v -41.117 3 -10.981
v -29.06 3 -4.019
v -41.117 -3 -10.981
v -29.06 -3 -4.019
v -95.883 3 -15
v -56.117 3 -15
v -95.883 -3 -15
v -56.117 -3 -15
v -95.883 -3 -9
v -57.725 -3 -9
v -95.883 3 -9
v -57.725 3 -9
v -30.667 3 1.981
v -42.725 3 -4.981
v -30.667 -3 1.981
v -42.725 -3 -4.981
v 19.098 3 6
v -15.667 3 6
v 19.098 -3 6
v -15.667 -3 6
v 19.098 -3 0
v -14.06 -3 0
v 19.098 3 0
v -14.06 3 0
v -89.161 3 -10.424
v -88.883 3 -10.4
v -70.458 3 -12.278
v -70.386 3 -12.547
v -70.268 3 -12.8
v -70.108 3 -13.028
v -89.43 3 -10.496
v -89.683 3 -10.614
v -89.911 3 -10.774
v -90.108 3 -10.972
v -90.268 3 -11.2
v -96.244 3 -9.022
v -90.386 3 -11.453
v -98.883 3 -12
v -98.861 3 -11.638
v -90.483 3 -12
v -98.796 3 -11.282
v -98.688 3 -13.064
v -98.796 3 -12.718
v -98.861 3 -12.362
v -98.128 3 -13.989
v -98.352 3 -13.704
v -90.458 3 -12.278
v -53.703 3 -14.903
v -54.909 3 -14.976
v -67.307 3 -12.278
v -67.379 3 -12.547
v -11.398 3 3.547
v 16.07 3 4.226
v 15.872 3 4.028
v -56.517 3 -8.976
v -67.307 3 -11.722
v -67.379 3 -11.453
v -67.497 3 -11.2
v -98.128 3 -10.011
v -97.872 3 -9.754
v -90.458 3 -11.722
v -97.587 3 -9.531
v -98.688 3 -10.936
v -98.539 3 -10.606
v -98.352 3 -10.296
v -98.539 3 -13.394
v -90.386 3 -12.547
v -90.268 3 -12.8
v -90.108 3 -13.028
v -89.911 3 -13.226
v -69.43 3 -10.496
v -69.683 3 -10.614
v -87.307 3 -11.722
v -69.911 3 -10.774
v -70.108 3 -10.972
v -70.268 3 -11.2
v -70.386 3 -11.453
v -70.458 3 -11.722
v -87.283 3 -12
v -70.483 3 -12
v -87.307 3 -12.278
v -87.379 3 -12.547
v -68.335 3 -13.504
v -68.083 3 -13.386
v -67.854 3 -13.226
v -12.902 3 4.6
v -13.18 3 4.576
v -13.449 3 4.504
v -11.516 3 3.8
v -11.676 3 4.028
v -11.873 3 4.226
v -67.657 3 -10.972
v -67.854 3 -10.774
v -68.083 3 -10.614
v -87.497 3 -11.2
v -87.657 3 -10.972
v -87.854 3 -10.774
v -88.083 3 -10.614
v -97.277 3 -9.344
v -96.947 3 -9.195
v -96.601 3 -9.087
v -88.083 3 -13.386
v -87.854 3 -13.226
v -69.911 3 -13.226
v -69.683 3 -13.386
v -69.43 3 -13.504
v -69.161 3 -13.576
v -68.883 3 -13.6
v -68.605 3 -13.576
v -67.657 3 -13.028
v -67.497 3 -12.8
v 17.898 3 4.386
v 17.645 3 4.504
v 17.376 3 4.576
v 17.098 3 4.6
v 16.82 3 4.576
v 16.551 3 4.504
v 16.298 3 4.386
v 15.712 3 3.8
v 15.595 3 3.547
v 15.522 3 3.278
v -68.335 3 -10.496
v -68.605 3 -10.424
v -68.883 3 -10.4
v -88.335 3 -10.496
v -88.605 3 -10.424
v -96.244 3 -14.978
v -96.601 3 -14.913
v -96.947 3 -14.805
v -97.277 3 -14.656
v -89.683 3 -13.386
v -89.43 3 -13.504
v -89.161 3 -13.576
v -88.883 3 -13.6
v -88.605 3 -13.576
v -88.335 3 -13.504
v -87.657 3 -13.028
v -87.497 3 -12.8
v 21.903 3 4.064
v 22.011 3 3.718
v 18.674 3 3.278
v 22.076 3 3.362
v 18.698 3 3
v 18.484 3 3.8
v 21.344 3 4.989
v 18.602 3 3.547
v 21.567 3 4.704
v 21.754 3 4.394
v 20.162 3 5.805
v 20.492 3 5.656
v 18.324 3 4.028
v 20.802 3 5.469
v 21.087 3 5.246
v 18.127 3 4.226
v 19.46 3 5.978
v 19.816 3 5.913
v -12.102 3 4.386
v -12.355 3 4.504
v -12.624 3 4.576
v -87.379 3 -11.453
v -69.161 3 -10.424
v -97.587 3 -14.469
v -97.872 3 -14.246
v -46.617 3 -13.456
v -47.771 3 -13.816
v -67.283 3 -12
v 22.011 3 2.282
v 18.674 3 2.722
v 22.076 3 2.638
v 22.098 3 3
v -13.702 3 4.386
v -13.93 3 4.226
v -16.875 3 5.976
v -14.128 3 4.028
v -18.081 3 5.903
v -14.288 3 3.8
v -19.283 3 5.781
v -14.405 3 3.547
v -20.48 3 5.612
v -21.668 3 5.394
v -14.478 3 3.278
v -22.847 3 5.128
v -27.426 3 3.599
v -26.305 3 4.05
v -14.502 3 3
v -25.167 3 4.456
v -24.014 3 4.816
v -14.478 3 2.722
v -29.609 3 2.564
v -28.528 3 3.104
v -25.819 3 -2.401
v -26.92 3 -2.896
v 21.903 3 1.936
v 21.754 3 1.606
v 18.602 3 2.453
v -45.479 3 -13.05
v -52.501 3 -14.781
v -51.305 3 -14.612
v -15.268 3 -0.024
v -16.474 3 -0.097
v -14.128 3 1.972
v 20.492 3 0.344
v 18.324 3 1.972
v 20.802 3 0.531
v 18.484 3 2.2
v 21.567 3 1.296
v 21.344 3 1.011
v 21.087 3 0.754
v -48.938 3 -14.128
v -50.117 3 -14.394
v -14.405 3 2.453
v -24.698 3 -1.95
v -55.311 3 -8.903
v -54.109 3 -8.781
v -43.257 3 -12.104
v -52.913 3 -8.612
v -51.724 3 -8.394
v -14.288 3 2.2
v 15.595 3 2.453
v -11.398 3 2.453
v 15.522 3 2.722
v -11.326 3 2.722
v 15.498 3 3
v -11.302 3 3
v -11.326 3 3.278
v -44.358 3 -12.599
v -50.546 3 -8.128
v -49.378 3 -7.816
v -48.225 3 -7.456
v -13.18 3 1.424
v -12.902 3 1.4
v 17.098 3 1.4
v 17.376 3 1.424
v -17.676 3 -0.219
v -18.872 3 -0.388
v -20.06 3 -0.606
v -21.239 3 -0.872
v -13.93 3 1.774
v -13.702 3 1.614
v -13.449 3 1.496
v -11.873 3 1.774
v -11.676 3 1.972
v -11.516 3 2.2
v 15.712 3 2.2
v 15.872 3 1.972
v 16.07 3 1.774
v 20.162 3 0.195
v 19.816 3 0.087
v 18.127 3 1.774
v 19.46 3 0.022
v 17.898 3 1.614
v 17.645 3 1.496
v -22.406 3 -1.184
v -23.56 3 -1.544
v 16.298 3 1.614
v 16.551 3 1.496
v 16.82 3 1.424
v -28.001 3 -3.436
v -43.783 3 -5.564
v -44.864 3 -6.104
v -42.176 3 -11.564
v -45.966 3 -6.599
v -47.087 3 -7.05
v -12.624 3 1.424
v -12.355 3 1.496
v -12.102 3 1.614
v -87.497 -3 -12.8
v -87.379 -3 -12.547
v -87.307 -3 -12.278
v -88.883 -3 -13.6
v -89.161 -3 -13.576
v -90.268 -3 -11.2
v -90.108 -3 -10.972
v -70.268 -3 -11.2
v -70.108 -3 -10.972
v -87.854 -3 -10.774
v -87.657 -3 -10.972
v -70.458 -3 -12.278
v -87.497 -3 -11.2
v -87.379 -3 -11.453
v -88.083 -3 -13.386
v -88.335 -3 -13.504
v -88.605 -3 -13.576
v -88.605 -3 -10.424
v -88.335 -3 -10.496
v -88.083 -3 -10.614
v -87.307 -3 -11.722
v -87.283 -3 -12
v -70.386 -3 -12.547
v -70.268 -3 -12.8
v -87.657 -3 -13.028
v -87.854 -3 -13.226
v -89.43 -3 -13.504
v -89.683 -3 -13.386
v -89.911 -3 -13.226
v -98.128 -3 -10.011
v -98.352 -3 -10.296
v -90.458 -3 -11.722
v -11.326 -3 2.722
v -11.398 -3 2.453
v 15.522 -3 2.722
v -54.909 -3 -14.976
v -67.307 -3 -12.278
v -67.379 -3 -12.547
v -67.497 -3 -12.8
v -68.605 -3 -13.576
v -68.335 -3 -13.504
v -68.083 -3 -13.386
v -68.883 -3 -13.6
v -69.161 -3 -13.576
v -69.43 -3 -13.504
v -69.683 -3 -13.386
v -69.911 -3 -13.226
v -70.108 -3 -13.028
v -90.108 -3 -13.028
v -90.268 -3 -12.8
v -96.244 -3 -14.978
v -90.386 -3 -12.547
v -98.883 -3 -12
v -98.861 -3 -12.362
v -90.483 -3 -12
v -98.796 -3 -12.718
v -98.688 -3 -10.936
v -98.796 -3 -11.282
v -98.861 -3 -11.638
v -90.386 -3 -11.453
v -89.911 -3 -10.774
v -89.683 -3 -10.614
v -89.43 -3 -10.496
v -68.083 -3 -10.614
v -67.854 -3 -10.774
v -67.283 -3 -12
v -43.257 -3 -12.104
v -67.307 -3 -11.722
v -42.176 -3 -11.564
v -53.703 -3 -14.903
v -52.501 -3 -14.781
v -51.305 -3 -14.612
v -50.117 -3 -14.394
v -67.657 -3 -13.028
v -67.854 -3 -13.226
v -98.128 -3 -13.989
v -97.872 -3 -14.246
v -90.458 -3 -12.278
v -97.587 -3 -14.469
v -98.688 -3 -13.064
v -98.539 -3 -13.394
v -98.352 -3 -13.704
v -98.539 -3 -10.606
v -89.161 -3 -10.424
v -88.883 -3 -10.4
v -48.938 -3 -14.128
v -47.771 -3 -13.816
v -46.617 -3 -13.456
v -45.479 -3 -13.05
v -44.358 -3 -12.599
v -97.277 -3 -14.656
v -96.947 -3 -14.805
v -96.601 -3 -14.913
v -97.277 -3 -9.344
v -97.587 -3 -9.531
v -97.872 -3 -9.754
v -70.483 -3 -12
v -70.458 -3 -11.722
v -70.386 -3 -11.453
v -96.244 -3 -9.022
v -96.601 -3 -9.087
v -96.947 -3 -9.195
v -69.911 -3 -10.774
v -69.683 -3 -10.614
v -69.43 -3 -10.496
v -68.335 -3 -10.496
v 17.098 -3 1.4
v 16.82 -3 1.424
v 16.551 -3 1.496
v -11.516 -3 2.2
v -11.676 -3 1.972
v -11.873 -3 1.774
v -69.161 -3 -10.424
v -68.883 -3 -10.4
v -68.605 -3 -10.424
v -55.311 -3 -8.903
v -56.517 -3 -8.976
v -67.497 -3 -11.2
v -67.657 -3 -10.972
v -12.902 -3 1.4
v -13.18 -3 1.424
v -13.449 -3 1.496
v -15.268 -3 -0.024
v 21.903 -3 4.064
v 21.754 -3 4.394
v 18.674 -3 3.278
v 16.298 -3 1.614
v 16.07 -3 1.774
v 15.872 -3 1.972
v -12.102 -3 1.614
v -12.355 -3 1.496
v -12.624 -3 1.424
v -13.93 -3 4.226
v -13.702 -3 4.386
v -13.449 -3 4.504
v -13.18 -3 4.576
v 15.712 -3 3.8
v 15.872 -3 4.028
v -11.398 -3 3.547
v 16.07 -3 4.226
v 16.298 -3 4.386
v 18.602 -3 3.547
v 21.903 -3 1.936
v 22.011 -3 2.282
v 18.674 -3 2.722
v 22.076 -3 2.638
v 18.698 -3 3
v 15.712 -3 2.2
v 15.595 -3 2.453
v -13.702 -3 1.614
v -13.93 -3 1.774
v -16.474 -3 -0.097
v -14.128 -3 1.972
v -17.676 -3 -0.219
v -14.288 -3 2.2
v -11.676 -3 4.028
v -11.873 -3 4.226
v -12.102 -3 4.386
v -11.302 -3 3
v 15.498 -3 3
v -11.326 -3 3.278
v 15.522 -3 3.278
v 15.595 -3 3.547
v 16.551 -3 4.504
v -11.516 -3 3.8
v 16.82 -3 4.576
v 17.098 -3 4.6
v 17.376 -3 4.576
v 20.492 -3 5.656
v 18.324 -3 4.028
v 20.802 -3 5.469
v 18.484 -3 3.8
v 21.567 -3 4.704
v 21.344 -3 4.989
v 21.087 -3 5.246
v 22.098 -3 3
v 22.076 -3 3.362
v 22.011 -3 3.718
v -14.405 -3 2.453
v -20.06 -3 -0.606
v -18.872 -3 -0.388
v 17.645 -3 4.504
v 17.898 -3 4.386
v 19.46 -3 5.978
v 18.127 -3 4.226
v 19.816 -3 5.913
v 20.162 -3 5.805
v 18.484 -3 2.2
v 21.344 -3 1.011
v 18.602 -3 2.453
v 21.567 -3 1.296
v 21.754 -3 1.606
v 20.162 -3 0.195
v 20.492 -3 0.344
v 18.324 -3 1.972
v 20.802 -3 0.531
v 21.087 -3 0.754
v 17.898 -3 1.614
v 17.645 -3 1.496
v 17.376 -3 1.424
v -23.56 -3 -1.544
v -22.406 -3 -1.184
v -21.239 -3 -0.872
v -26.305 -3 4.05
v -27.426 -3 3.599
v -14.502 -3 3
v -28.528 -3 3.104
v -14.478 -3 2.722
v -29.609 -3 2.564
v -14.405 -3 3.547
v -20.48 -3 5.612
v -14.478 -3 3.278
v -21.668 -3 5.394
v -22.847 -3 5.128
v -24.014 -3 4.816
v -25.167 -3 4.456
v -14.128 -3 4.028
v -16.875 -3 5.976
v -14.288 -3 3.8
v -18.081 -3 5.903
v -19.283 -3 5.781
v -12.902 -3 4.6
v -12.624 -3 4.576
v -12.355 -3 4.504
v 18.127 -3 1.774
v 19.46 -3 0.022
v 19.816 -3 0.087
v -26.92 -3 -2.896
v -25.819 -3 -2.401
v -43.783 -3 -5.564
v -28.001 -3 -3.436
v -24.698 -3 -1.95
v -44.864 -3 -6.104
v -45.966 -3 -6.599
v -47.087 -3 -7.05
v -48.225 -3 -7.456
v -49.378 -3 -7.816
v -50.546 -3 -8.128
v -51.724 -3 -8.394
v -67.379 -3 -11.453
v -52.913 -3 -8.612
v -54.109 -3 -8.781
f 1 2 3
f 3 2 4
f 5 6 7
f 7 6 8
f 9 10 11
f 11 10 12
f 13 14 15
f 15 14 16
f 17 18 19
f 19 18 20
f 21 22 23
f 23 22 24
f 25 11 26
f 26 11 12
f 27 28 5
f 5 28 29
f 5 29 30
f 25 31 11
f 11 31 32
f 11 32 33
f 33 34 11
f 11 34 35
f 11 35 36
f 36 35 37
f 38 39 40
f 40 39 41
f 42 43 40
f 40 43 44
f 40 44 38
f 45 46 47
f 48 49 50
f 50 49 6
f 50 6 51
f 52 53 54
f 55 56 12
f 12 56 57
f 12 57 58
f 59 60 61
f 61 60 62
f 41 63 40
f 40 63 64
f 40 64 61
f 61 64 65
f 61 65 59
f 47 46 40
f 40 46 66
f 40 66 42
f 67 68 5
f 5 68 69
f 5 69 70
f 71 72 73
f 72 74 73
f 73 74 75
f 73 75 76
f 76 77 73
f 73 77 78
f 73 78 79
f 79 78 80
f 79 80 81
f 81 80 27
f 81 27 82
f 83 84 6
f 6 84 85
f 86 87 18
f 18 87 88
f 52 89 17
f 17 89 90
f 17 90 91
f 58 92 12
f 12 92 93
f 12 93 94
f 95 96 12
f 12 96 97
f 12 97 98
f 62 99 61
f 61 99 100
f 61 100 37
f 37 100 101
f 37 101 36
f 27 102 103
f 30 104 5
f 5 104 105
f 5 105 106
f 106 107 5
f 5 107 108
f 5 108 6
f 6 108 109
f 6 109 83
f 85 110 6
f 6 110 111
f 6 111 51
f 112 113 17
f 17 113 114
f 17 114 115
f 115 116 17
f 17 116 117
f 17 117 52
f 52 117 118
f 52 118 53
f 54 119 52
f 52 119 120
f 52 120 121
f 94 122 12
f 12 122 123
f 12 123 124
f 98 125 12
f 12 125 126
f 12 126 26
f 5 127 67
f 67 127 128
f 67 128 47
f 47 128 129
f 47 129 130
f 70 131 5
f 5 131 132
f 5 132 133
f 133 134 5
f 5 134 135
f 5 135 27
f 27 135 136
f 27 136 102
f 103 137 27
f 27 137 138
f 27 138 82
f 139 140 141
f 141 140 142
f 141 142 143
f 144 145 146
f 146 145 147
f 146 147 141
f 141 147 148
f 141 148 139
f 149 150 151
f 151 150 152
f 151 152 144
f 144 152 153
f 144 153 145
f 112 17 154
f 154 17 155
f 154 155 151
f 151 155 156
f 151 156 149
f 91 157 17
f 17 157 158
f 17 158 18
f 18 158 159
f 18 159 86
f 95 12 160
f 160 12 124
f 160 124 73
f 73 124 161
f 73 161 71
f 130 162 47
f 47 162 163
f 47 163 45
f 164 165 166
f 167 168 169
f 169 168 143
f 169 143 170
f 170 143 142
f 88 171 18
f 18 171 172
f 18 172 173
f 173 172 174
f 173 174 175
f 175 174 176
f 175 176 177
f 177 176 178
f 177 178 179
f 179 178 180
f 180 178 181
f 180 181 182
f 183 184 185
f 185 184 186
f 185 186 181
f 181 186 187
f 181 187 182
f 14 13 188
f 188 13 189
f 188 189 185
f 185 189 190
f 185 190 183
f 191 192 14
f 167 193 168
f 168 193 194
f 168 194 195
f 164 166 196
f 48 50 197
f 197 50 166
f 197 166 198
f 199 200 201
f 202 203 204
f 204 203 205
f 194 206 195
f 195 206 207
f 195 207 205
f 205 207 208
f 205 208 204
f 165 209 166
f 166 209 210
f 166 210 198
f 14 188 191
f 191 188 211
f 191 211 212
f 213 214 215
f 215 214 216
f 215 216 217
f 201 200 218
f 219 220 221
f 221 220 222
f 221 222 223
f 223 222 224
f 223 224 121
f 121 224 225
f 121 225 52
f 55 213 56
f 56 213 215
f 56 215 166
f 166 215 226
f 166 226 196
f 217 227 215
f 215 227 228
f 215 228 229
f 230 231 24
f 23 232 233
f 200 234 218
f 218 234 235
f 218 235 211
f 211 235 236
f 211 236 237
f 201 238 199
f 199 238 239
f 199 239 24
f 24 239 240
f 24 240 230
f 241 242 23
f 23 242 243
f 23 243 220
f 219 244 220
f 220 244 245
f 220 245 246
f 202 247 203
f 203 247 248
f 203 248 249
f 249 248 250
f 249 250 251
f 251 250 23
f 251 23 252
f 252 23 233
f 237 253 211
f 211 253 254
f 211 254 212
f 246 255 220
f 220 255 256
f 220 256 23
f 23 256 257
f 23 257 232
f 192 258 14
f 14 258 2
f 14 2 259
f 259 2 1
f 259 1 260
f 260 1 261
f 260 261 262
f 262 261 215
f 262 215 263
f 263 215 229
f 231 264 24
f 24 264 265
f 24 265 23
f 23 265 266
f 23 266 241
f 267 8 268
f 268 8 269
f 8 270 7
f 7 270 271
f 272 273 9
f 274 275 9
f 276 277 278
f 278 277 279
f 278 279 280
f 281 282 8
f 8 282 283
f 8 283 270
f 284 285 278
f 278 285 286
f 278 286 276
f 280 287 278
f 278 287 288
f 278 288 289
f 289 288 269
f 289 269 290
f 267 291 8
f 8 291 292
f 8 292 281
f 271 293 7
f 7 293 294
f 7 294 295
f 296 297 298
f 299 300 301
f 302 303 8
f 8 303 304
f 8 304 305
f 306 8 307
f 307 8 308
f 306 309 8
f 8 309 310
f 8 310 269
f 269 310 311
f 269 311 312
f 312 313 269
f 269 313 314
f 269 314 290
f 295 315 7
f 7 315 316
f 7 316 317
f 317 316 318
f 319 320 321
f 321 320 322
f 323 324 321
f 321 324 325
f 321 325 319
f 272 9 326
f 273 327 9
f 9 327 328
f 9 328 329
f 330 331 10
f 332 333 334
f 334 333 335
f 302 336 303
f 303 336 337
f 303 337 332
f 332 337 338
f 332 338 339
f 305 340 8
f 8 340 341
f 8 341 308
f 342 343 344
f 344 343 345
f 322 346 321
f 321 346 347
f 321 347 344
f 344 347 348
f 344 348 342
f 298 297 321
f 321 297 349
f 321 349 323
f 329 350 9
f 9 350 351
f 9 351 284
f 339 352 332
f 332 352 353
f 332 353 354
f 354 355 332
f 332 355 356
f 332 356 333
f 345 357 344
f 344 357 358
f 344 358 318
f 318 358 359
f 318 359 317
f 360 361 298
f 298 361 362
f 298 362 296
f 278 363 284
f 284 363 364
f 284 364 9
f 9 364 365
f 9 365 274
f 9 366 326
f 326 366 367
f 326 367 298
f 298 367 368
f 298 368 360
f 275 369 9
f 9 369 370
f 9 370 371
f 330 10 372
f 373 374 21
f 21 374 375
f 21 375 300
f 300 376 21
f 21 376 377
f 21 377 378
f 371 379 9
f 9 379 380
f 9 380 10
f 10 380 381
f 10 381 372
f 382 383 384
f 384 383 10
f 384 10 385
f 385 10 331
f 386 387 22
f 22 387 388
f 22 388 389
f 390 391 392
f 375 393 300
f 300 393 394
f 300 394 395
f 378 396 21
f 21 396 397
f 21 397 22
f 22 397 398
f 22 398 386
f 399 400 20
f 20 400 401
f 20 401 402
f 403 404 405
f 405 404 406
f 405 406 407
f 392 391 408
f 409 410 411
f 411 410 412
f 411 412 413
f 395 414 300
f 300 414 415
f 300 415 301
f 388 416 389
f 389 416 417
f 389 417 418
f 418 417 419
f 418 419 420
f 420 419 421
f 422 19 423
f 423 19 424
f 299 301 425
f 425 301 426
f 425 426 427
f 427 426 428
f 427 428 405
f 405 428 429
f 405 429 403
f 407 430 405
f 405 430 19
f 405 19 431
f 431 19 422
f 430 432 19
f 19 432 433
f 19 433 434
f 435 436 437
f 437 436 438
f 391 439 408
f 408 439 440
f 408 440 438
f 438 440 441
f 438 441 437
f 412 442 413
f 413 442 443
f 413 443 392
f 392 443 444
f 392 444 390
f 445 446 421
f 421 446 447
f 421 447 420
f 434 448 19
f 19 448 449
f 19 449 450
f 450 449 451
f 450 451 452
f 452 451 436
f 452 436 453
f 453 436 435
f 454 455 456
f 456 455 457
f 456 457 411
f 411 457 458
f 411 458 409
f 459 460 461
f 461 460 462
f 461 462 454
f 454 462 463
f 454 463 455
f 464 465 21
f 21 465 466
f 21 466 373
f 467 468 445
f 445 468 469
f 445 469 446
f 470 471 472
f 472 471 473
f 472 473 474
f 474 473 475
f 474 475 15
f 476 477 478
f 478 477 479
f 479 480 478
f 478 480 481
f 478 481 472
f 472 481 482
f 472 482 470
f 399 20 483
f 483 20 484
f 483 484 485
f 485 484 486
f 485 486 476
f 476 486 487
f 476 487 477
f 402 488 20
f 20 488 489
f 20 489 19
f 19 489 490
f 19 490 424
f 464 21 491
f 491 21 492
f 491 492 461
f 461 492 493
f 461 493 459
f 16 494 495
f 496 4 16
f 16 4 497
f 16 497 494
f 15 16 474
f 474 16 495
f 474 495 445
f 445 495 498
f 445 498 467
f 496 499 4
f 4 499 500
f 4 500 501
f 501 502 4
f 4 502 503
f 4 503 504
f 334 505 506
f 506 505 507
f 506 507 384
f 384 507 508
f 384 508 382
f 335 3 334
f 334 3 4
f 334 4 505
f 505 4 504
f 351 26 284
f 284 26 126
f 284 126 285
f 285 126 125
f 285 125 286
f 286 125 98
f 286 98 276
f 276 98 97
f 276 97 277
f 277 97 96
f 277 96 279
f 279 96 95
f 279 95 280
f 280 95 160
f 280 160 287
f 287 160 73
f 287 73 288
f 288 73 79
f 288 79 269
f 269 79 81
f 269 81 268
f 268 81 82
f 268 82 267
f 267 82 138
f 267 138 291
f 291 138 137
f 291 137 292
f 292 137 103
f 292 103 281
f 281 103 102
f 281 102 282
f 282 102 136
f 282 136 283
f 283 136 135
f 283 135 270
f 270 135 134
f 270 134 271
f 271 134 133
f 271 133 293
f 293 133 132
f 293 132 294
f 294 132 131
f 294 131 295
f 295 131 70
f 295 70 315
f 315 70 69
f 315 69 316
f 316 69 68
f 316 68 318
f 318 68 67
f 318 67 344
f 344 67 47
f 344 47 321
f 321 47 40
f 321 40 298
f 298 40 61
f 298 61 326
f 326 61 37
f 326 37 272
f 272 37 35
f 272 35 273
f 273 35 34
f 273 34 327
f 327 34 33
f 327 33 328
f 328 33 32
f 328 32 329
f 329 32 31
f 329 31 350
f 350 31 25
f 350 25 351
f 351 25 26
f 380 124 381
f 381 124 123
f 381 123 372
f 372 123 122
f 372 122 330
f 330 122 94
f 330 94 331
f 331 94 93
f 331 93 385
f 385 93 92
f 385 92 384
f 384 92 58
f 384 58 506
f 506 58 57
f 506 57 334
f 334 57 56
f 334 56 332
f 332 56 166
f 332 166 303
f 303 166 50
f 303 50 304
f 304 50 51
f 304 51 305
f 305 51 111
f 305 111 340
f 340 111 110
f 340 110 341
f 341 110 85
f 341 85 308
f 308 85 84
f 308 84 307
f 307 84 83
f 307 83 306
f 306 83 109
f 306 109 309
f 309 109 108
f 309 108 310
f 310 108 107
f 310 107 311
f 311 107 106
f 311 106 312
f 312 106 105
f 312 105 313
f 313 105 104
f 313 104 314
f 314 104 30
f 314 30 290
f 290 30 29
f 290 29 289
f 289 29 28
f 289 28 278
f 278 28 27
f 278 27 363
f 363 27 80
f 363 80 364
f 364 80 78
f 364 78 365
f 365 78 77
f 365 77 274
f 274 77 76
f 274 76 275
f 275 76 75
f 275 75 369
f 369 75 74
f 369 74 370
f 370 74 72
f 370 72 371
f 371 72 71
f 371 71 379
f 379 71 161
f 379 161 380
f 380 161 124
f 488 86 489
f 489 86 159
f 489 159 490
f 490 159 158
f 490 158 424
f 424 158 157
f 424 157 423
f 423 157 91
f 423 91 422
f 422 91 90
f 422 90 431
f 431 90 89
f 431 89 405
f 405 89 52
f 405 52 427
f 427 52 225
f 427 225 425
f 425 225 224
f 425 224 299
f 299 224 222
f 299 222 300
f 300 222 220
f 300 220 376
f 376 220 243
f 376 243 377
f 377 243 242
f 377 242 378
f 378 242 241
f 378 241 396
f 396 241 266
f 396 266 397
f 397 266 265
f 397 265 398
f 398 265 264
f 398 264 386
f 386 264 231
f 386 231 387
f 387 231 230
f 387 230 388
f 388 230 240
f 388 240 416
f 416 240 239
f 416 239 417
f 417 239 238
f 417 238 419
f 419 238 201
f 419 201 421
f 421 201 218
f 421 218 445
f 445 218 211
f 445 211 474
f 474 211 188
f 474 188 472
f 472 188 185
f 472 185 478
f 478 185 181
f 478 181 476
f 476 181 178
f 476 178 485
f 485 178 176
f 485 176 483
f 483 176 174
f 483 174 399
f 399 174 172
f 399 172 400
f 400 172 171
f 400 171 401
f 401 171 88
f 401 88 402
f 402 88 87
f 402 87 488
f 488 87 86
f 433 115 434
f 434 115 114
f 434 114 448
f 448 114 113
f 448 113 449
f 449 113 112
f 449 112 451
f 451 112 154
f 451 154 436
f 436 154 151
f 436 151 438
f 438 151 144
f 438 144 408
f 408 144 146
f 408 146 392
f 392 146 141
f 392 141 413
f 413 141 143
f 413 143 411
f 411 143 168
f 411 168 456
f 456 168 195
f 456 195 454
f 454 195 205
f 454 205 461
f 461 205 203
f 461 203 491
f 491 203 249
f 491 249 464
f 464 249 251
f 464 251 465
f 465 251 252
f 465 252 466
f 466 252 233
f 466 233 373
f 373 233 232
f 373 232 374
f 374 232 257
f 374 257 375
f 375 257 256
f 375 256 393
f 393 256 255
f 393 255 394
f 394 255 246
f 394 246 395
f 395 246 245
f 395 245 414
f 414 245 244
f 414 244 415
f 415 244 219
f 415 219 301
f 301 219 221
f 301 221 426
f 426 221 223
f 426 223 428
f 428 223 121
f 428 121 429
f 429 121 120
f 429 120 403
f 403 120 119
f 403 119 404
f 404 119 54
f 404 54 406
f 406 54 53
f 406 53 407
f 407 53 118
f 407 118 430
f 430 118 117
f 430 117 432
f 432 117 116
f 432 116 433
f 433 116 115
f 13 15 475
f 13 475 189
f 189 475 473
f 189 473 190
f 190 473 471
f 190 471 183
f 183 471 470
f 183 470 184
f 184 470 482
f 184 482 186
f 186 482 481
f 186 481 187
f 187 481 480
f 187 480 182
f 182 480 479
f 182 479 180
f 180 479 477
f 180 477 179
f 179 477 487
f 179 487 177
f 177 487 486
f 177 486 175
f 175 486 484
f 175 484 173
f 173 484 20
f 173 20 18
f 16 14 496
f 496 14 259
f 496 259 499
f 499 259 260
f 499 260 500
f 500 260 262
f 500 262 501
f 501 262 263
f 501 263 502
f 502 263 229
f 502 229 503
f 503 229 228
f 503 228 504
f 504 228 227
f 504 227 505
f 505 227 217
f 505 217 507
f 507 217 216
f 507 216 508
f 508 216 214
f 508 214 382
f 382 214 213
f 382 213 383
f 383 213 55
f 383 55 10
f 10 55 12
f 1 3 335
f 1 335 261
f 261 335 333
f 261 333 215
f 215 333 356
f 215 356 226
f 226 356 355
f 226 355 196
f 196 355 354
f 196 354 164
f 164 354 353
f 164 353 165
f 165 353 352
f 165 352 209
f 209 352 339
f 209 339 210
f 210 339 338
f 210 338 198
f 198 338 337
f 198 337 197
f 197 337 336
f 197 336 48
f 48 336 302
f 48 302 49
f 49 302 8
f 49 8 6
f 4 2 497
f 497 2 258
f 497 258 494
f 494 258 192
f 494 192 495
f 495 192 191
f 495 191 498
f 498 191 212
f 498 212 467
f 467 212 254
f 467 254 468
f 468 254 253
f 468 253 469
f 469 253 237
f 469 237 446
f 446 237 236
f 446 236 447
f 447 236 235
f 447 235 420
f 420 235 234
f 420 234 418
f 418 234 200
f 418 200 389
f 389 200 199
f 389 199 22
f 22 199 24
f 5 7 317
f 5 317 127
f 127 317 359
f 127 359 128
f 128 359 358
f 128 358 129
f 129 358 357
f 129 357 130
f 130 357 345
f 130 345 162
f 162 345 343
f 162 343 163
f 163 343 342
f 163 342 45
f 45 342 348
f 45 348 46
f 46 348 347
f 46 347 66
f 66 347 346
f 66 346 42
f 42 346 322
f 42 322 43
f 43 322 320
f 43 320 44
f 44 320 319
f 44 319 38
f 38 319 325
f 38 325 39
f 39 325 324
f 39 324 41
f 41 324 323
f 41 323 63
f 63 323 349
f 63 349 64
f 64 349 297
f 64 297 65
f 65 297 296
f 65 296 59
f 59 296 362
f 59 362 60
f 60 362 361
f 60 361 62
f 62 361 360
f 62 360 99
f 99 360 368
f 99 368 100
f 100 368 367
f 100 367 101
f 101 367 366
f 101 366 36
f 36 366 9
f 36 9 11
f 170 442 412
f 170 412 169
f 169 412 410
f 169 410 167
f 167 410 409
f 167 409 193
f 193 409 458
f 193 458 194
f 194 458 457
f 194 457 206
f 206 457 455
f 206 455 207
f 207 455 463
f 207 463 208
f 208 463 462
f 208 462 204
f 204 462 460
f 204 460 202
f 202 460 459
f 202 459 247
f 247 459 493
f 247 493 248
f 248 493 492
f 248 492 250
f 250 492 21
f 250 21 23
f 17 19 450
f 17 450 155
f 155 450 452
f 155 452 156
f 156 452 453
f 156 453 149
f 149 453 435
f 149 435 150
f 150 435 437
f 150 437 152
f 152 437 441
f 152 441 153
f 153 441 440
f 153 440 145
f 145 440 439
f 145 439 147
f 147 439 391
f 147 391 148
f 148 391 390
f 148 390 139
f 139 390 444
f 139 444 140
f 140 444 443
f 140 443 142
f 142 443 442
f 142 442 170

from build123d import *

# Parameters (mm, degrees)
BOSS_EXTRUDE1_DEPTH = 3
SKETCH2_R           = 1.6
CUT_EXTRUDE1_DEPTH  = 101.19374018
FILLET1_R           = 30
FILLET2_R           = 3


with BuildPart() as part:
    # Sketch1 → Boss-Extrude1 (new, symmetric)
    with BuildSketch(Plane(origin=(0, 0, 0), x_dir=(1, 0, 0), z_dir=(0, 1, 0))):
        Polygon((22.098076211, 0), (-22.098076211, 0), (-48.078838325, 15), (-98.882685902, 15), (-98.882685902, 9), (-49.686533479, 9), (-23.705771366, -6), (22.098076211, -6), align=None)
    extrude(amount=BOSS_EXTRUDE1_DEPTH, both=True)

    # Sketch2 → Cut-Extrude1 (cut, through all)
    with BuildSketch(Plane(origin=(0, 3, 0), x_dir=(1, 0, 0), z_dir=(0, 1, 0))):
        with Locations(Location((17.098076211, -3, 0), (0, 0, 270))):
            Circle(SKETCH2_R)
        with Locations(Location((-12.901923789, -3, 0), (0, 0, 270))):
            Circle(SKETCH2_R)
        with Locations(Location((-68.882685902, 12, 0), (0, 0, 270))):
            Circle(SKETCH2_R)
        with Locations(Location((-88.882685902, 12, 0), (0, 0, 270))):
            Circle(SKETCH2_R)
    extrude(amount=-CUT_EXTRUDE1_DEPTH, mode=Mode.SUBTRACT)

    # Fillet1
    fillet1_edges = [part.edges().sort_by_distance(p)[0] for p in [
        (-22.098076211, 0, 0),
        (-23.705771366, 0, 6),
        (-49.686533479, 0, -9),
        (-48.078838325, 0, -15),
    ]]
    fillet(fillet1_edges, radius=FILLET1_R)

    # Fillet2
    fillet2_edges = [part.edges().sort_by_distance(p)[0] for p in [
        (-98.882685902, 0, -9),
        (-98.882685902, 0, -15),
        (22.098076211, 0, 6),
        (22.098076211, 0, 0),
    ]]
    fillet(fillet2_edges, radius=FILLET2_R - 0.0001)  # a hair under: the kernel refuses the full size


solid = part.part
